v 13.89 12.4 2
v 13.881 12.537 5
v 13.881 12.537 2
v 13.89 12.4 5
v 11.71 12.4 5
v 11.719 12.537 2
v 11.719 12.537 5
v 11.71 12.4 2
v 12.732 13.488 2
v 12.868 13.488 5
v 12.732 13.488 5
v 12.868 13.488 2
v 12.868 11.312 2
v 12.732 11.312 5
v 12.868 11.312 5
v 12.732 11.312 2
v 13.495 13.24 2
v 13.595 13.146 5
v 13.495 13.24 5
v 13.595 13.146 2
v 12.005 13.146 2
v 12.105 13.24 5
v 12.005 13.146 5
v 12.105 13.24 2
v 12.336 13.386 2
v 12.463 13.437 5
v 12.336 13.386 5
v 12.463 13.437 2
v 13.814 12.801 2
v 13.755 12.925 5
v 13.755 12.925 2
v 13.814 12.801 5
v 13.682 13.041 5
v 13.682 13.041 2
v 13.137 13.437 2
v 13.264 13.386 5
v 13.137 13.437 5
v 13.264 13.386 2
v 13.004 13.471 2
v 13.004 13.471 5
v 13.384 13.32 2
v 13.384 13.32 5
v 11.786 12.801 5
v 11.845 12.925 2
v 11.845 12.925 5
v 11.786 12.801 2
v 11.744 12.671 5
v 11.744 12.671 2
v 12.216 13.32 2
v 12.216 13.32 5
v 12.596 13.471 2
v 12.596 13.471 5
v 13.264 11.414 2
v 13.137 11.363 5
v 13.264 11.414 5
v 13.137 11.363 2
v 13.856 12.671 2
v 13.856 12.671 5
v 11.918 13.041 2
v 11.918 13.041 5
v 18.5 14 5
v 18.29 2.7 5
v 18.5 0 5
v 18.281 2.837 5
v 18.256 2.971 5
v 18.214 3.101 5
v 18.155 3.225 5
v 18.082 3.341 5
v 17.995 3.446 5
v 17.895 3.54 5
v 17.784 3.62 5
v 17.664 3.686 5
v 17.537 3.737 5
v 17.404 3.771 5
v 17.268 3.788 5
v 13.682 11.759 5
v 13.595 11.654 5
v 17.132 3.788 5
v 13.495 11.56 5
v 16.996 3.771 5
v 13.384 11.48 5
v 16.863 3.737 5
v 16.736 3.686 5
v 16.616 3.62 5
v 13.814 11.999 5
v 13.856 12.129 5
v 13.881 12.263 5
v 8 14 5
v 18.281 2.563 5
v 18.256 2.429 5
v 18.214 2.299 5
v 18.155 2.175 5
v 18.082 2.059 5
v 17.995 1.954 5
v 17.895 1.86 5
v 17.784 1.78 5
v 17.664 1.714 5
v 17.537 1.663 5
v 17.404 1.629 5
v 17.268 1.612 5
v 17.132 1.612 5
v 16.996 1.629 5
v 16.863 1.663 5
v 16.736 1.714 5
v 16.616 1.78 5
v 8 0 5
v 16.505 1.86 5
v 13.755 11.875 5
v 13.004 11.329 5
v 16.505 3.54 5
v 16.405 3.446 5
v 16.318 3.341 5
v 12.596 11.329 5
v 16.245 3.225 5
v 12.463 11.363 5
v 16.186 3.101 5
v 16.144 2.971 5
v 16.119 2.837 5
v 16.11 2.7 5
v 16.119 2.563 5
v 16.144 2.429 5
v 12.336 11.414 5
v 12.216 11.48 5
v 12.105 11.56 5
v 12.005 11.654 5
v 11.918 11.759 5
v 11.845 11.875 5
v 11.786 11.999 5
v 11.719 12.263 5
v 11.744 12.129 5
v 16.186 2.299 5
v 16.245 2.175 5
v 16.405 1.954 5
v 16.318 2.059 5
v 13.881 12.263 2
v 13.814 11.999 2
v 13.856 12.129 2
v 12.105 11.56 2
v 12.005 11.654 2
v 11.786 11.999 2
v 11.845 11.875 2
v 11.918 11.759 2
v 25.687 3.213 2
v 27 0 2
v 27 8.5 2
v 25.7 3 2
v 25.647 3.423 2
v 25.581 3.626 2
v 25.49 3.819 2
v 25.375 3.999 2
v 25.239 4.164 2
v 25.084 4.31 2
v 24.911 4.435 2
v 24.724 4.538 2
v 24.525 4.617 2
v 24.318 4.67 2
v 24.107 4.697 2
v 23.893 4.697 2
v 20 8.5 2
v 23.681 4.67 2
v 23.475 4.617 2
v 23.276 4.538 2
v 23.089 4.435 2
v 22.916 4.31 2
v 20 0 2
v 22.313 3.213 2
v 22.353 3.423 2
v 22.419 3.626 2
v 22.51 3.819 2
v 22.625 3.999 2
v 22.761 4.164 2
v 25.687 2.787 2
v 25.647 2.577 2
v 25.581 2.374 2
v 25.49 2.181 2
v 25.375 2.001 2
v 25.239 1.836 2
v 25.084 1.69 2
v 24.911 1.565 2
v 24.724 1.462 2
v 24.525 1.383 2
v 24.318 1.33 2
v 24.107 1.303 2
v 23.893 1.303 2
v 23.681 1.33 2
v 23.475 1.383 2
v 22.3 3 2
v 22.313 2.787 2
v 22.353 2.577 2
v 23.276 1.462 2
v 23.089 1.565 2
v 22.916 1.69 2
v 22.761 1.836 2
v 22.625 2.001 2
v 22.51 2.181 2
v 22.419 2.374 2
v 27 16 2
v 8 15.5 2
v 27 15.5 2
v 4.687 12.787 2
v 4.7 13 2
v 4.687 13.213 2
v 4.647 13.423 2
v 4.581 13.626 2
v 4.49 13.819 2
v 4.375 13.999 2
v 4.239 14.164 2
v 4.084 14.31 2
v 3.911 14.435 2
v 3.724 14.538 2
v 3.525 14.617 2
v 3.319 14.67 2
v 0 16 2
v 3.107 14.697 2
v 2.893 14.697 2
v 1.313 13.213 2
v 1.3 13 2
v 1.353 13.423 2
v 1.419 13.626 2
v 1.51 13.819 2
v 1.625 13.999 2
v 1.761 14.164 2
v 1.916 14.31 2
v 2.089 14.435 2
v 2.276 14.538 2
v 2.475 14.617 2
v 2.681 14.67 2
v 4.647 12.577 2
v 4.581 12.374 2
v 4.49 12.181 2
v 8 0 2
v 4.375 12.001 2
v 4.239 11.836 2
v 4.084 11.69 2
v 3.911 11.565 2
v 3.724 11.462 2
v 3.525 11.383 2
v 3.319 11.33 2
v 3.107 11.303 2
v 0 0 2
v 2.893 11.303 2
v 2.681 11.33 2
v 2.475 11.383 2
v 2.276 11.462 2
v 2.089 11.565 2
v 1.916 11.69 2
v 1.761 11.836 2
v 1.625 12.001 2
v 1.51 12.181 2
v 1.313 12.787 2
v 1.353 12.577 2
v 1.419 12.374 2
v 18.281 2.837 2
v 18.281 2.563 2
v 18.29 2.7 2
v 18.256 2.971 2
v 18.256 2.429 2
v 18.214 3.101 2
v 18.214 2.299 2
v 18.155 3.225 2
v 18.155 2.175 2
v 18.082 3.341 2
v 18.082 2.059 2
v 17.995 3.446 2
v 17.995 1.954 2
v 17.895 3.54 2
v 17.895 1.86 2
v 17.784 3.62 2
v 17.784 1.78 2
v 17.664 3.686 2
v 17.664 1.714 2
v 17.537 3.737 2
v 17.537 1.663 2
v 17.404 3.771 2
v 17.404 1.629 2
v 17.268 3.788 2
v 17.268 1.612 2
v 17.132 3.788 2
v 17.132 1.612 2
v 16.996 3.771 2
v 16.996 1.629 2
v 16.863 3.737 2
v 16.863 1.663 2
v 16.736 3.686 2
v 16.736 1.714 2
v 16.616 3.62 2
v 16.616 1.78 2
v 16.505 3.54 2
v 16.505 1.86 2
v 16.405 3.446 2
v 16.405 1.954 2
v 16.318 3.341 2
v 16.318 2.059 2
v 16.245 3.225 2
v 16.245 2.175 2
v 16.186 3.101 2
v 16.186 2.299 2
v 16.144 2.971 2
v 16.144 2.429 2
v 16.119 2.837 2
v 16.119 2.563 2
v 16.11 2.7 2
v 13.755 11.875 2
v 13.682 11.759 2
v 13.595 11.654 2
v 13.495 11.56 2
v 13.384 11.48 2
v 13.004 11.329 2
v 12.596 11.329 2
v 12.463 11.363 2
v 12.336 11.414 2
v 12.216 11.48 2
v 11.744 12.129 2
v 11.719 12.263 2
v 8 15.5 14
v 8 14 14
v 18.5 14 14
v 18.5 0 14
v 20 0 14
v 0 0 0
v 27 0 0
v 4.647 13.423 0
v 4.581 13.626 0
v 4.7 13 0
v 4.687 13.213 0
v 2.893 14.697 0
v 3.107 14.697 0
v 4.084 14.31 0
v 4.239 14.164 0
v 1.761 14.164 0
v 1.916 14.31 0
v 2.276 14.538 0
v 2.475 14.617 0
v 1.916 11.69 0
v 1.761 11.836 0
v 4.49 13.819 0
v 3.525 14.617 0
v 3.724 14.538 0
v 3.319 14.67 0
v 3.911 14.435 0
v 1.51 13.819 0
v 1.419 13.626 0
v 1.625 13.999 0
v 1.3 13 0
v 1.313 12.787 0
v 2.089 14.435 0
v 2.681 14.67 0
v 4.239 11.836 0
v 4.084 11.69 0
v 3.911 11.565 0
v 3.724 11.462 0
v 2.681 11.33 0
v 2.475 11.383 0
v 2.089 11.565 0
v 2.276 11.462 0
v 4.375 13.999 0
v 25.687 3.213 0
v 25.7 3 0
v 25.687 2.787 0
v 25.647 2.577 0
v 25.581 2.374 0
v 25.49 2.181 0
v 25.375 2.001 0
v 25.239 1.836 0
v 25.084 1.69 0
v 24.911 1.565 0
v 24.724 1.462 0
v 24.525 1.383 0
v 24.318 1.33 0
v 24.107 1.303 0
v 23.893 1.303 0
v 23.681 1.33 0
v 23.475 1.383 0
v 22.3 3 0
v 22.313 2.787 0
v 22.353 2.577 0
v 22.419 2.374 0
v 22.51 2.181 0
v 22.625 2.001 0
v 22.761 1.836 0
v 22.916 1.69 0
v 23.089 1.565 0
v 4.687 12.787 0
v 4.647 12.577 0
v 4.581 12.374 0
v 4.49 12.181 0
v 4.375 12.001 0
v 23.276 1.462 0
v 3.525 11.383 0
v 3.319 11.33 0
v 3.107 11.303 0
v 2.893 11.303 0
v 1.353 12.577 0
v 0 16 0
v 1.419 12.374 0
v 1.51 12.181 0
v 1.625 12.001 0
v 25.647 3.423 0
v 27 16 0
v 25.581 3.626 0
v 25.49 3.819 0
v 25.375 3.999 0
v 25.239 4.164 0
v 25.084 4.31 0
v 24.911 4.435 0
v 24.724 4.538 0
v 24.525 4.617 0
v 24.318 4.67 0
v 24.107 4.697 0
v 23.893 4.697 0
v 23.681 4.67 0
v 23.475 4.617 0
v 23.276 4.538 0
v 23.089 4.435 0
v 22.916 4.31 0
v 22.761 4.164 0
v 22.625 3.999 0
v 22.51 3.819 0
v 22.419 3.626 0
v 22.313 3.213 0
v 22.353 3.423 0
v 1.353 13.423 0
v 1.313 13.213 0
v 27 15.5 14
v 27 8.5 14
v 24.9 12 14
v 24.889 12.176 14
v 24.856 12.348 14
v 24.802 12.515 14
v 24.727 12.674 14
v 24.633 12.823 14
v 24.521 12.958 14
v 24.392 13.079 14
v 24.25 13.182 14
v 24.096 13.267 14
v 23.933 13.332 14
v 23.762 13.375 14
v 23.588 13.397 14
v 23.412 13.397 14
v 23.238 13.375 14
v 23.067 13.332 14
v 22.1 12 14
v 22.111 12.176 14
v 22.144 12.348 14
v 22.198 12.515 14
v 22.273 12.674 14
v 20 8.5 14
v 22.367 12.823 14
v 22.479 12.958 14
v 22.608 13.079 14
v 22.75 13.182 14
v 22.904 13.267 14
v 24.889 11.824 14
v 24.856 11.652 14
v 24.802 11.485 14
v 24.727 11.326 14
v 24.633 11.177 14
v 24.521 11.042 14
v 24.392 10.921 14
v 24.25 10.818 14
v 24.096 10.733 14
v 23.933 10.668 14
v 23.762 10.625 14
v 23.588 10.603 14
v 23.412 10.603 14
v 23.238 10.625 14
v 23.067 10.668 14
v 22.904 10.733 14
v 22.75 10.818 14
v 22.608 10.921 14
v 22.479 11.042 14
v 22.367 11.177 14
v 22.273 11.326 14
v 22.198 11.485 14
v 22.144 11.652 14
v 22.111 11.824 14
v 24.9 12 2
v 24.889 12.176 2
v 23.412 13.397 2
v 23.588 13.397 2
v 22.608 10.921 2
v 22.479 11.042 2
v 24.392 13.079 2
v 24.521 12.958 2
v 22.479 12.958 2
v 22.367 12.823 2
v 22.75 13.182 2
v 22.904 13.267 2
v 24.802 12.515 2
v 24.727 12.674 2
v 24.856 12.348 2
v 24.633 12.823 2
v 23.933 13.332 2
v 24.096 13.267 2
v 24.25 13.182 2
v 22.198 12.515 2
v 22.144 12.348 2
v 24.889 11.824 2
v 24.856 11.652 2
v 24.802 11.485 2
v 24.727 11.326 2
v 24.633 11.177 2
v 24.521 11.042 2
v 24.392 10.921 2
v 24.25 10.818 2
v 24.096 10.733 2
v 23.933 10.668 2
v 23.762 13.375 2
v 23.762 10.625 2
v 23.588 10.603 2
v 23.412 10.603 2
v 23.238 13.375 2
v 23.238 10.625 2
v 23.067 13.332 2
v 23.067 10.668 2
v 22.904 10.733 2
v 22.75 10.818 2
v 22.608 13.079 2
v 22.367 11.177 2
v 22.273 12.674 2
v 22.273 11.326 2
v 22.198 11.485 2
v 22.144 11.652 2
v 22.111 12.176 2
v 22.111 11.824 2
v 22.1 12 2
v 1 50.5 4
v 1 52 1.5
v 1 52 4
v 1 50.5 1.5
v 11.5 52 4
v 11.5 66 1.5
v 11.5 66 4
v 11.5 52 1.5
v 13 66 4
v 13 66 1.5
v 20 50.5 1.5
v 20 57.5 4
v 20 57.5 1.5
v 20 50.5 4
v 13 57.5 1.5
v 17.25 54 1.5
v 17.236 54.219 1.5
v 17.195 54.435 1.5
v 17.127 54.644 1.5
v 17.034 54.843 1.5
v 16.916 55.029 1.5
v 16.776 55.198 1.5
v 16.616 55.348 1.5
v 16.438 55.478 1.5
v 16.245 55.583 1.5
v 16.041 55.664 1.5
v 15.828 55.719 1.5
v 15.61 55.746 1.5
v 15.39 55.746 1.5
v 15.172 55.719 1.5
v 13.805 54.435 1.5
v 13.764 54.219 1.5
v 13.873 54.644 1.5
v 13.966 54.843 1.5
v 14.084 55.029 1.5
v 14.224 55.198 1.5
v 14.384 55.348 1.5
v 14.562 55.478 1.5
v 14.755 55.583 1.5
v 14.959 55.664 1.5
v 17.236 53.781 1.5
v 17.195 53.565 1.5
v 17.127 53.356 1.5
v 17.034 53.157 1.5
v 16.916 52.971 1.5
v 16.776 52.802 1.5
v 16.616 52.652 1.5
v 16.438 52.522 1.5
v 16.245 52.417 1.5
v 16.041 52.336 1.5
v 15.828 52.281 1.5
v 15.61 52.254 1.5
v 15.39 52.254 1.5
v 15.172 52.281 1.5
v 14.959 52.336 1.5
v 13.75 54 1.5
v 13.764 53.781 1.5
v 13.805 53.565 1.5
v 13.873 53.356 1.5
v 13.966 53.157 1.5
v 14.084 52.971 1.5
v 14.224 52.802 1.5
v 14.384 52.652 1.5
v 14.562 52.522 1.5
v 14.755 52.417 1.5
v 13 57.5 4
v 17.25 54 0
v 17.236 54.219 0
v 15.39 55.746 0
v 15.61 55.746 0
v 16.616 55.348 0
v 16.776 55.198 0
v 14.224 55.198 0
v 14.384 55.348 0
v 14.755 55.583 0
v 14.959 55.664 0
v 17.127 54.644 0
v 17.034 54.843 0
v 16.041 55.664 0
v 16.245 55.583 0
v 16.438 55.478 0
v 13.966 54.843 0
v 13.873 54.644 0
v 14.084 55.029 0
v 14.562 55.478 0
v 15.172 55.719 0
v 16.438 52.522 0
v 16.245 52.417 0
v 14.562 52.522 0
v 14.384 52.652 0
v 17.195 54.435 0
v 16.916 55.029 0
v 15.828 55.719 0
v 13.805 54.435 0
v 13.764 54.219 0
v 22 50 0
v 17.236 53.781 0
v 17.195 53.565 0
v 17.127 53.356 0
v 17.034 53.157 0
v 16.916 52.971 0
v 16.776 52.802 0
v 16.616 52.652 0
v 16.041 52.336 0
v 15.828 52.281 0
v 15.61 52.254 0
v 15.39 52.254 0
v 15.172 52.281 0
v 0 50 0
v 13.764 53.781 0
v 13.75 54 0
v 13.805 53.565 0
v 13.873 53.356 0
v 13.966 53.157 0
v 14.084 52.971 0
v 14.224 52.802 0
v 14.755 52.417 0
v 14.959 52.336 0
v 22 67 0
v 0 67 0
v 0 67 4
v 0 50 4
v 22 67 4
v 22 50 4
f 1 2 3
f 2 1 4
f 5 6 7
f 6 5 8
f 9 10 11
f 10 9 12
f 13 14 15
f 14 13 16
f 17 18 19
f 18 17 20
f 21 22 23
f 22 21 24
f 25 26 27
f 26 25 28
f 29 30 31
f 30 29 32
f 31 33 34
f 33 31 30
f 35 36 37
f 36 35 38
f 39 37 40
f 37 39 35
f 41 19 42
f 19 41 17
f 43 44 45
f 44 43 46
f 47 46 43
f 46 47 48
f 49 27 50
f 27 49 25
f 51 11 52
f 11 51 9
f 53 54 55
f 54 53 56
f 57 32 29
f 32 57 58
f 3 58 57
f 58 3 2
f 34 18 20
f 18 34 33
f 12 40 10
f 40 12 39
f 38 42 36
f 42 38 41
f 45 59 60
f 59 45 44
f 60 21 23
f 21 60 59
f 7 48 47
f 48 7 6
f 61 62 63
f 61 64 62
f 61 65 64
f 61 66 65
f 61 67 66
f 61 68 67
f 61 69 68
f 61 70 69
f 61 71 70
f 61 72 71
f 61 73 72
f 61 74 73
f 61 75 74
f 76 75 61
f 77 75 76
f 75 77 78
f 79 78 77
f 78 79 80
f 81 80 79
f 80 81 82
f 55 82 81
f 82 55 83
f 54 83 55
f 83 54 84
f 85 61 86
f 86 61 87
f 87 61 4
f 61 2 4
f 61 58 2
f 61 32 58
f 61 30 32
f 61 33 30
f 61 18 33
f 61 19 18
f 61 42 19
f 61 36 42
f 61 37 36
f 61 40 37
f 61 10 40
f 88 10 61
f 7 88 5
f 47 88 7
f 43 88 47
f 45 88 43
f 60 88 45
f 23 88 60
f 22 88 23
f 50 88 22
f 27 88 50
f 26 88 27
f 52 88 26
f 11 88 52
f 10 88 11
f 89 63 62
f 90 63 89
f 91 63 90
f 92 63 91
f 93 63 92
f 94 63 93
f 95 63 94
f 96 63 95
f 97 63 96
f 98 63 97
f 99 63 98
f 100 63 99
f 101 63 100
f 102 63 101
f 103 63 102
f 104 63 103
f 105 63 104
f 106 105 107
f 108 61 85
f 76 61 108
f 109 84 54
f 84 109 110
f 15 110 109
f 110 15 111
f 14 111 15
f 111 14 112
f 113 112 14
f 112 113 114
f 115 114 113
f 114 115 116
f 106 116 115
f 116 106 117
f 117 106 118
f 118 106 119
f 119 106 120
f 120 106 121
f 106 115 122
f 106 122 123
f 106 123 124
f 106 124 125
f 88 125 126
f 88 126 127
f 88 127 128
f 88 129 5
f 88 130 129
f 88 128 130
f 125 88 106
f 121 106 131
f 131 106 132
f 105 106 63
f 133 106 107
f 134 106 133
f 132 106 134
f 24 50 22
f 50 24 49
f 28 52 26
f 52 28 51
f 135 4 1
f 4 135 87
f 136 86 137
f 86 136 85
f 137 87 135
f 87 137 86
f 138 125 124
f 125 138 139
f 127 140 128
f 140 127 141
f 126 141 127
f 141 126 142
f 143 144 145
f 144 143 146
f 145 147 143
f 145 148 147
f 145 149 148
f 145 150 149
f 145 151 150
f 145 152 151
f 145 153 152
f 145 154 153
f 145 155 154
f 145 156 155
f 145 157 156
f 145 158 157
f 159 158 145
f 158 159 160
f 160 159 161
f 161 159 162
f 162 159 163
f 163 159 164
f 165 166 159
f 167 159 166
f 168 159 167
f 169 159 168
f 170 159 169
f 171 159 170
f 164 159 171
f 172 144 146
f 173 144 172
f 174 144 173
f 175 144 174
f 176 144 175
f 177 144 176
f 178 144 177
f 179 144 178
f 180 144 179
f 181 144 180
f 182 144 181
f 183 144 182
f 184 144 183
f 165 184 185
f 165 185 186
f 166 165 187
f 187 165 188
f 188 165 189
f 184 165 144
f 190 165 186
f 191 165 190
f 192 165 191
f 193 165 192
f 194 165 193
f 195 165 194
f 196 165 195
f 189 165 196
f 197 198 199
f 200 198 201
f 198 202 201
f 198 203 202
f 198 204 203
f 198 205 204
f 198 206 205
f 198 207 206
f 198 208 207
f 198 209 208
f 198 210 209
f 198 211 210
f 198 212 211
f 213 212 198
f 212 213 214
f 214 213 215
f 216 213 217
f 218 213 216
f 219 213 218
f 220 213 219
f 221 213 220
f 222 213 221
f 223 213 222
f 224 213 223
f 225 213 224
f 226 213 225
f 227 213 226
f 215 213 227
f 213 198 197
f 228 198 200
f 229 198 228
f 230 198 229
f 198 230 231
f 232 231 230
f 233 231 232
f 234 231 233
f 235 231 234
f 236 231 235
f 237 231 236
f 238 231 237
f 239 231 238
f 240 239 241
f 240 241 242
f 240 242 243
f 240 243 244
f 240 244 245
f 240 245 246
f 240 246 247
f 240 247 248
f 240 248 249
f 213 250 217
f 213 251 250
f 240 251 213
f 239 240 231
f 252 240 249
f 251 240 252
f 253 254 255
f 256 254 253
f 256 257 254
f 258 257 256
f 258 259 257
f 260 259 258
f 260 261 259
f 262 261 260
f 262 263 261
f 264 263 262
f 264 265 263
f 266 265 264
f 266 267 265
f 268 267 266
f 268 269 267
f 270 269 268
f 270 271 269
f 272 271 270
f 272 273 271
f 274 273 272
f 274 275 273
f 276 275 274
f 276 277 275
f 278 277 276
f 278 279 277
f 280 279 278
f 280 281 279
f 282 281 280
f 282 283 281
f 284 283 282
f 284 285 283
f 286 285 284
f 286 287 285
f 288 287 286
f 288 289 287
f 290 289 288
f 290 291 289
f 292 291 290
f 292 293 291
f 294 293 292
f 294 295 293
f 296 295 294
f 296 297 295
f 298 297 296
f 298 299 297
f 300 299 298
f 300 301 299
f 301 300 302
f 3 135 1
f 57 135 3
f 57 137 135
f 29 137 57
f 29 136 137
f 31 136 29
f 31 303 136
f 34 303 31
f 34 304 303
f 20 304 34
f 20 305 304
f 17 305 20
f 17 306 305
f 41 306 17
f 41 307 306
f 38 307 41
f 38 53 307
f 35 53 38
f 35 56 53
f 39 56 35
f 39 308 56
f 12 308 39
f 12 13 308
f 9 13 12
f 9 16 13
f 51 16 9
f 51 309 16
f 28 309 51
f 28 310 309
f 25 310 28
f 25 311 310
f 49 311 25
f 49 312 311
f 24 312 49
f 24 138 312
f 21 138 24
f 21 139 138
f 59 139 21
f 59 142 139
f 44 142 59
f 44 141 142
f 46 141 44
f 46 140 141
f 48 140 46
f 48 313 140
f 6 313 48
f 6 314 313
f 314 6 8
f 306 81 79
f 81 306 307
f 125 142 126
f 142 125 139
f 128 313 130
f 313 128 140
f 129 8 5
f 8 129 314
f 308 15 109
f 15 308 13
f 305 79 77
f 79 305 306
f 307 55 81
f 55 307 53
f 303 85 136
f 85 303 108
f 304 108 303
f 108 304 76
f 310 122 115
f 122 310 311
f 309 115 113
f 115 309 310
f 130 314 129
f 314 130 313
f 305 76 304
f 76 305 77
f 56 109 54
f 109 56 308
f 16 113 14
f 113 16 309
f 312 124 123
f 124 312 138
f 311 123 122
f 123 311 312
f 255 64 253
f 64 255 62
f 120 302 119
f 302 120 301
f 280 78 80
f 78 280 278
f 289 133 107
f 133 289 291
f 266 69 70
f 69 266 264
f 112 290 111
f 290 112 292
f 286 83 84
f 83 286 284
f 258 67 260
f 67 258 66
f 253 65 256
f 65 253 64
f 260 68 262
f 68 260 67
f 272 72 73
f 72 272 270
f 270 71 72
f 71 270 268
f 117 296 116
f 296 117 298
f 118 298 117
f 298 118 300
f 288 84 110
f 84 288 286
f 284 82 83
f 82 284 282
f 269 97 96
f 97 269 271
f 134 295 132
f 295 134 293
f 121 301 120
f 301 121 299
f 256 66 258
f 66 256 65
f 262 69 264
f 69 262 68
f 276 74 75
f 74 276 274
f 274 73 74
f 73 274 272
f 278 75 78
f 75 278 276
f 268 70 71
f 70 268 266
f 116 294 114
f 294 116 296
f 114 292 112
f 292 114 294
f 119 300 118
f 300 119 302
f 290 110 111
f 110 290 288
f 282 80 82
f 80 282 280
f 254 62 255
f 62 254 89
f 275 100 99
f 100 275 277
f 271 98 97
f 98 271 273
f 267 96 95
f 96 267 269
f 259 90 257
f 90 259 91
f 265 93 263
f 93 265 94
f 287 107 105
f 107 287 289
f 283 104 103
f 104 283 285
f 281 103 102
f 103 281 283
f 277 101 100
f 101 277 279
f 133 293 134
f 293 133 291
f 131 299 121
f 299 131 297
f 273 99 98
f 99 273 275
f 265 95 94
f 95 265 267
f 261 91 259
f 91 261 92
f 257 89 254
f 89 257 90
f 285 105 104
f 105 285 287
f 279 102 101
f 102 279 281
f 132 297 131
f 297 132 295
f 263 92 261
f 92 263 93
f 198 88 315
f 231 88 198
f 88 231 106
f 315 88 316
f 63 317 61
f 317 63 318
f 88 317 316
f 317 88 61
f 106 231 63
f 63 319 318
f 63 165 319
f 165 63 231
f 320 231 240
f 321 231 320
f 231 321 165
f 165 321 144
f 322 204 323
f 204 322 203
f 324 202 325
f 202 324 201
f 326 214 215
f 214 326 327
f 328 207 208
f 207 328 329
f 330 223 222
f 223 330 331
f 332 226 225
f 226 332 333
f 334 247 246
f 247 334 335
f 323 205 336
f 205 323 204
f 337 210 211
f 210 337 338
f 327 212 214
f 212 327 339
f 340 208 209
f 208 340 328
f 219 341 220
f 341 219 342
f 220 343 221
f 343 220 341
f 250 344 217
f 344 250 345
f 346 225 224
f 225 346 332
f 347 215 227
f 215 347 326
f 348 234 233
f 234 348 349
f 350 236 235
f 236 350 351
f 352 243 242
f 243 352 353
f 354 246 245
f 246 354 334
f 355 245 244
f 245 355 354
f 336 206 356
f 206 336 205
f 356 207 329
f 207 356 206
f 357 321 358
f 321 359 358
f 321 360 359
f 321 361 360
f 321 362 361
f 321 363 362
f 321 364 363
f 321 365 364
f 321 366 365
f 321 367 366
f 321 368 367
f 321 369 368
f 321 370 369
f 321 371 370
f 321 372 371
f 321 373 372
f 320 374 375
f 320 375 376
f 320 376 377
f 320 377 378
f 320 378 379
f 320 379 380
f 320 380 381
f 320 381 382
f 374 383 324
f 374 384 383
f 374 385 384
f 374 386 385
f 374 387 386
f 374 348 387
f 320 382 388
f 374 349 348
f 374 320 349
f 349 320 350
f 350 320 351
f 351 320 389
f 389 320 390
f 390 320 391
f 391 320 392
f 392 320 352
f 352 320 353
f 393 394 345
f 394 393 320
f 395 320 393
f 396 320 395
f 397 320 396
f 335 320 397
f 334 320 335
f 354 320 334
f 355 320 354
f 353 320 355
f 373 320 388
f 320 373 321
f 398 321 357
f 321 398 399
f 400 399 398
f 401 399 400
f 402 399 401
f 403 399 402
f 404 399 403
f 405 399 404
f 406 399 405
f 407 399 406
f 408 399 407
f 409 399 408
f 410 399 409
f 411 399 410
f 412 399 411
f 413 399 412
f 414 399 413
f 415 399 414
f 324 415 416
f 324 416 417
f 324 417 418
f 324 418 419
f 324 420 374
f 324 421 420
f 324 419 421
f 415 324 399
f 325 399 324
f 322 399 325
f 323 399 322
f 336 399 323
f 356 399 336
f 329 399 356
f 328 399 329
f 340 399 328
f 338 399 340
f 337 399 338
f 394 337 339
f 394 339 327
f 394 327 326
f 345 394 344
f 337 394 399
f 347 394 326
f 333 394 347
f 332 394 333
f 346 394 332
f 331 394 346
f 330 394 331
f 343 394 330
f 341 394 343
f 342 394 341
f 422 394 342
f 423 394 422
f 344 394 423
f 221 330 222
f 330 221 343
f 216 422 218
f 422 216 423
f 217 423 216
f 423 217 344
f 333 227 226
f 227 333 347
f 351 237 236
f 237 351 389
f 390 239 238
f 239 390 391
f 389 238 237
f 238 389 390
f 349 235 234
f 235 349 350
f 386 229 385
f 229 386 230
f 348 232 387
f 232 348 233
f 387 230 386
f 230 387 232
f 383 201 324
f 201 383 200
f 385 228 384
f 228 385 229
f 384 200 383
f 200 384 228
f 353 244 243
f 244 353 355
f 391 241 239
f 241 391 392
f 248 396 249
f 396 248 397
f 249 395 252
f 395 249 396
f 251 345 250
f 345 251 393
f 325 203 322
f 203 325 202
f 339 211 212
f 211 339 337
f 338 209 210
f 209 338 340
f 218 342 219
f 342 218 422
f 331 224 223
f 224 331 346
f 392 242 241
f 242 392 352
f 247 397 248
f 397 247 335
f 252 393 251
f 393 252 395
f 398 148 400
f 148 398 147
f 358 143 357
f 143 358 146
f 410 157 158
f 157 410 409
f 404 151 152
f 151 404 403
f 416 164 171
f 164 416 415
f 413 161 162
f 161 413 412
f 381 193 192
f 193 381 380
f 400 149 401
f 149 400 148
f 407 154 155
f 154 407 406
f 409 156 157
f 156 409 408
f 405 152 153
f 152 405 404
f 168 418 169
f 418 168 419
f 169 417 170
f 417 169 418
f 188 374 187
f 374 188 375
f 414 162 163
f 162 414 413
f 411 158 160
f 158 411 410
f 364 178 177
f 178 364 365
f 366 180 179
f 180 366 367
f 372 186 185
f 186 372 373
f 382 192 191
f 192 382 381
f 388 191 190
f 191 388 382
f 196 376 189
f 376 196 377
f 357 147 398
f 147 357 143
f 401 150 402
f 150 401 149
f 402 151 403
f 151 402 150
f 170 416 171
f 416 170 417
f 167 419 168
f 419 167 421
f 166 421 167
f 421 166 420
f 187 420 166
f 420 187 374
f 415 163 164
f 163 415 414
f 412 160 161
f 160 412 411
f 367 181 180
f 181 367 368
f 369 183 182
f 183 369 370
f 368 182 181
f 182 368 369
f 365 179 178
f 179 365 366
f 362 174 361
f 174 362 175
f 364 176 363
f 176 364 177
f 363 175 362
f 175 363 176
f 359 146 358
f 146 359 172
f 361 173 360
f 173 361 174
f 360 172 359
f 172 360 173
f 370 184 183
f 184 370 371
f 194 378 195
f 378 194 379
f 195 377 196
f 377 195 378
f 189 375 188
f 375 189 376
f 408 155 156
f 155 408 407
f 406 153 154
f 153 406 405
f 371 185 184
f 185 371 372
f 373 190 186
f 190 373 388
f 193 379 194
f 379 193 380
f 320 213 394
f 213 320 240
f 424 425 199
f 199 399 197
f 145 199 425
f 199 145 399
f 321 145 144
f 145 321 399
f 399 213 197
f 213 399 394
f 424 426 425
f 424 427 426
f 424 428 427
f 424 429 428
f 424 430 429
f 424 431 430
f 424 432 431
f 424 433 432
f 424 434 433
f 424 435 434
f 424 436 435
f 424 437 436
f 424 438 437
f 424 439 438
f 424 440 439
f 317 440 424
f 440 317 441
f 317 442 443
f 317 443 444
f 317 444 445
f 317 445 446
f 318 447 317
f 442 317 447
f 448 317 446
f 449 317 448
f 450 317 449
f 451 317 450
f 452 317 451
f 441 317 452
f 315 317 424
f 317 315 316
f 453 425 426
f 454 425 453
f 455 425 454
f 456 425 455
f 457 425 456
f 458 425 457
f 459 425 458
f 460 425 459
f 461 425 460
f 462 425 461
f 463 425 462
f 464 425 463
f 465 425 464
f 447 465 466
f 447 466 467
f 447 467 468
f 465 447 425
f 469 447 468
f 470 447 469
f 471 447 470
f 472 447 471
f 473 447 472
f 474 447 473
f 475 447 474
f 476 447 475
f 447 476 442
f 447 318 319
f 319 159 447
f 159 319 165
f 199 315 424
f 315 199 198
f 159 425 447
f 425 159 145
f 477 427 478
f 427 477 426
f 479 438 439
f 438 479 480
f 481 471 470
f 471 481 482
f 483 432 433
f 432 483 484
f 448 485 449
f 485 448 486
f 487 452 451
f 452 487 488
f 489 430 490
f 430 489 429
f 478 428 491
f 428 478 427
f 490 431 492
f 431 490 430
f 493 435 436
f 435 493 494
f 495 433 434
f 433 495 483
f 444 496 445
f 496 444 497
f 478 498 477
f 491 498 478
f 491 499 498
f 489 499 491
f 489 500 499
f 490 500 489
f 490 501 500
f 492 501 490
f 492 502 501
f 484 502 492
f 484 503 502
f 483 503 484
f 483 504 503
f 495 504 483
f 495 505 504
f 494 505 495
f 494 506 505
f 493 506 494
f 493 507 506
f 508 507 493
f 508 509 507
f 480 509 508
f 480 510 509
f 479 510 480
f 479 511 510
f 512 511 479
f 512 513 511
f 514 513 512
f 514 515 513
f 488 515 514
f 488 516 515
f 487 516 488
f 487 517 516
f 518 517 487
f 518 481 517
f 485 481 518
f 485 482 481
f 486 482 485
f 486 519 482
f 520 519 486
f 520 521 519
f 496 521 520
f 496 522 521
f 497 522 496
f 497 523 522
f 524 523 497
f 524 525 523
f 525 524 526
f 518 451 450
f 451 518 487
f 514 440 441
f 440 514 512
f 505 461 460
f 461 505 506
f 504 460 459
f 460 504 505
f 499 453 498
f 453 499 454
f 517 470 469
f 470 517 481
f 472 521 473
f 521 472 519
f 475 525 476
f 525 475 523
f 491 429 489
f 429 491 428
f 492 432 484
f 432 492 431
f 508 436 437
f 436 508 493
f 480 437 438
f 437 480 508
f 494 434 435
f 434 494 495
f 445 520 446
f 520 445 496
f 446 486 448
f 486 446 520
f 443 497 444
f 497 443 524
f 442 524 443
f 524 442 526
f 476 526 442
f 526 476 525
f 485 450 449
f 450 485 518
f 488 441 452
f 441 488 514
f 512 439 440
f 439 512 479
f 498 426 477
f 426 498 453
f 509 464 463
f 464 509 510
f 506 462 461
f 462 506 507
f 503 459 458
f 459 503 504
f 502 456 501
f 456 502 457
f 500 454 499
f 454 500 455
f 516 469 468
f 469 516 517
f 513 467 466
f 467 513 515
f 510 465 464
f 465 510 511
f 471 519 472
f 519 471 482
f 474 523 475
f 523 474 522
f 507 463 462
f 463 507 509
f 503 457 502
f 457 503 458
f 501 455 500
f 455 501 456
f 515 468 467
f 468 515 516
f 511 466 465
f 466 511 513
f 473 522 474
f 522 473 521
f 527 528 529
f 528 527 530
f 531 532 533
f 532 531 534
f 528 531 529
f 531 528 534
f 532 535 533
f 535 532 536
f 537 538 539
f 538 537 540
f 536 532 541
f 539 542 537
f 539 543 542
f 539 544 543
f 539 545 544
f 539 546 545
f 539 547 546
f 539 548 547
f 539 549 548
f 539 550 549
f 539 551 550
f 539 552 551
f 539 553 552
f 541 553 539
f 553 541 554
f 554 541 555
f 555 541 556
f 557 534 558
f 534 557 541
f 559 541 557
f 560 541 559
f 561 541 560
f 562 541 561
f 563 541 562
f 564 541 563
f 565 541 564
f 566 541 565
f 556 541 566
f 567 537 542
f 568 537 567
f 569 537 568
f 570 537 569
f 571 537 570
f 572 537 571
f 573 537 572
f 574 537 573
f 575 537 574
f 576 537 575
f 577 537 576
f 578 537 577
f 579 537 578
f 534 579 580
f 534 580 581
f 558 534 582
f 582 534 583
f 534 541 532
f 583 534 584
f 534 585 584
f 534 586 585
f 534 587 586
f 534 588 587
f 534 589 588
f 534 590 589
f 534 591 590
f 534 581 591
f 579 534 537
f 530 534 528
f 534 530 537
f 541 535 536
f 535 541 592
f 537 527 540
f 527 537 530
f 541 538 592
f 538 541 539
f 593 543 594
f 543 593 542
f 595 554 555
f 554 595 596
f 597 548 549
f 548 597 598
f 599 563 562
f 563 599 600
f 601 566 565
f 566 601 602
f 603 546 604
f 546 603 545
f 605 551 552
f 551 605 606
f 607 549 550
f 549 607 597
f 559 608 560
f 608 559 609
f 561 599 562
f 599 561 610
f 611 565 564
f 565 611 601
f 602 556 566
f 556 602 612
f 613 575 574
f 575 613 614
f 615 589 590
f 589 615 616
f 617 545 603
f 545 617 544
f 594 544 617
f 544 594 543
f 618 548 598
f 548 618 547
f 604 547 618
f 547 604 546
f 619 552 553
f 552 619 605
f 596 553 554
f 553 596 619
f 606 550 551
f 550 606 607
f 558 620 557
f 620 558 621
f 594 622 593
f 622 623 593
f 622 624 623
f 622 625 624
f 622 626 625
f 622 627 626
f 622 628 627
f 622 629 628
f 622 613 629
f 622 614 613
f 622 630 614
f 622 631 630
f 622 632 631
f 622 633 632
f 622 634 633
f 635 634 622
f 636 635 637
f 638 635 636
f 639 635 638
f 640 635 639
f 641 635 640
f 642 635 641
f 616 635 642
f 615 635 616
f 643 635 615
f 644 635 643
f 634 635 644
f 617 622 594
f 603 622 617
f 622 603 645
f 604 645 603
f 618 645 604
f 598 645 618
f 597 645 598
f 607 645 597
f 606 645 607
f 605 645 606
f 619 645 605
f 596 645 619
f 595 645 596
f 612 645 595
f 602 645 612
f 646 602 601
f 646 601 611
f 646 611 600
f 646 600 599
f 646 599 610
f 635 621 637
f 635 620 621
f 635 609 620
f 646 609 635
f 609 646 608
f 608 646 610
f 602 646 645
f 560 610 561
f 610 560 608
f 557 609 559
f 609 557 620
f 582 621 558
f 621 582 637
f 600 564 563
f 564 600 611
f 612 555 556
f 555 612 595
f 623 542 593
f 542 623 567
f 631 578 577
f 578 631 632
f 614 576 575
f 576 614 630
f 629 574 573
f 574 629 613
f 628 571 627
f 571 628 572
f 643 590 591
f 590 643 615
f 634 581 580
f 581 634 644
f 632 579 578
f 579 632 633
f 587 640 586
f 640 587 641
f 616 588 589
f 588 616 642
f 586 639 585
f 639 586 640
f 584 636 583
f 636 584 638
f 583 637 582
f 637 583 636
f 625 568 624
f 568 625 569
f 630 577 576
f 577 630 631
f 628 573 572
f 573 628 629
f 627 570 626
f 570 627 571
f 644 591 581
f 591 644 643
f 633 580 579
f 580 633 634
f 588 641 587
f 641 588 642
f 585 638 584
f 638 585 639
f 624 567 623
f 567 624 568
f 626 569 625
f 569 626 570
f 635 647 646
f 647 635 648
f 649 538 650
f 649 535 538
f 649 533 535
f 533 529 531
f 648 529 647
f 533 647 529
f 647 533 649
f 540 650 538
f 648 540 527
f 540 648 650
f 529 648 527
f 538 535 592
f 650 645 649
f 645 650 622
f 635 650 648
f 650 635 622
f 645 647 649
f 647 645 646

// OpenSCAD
// file: ../library_deh/mag_mount.scad
/* mag_mount.scad

 * ****** Stud magnets ******
16 mm 
http://www.kjmagnetics.com/proddetail.asp?prod=MM-C-16
    Dimensions:
        D=16mm (0.63")
        M=4mm (0.16") (M4 Coarse Male threaded stud)
        H=13mm (0.51")
        h=5mm (0.20")
    Material: NdFeB, Grade N38
    Plating/Coating: Ni-Cu-Ni (Nickel)
    Magnetization Direction: Axial (Poles on Flat Ends)
    Weight: 0.26 oz. (7.37 g)
    Pull Force: 12.1 lbs
    Surface Field: N/A
    Brmax: 12,600 Gauss
    BHmax: 38 MGOe
   $2.49
*/
// Measured dimensions
 mag_thick = 4.82;	    // Magnet thickness (base to shell top)
 mag_shell_dia = 16.0;	    // Magnet shell OD
 mag_shell_flat_dia = 11;   // Dia of flat of magent
 mag_stud_dia = 2.8;        // Dia of mounting magnet studs (4-40)
 mag_stud_len = 8.0;        // Height of stud from magnet back
 mag_washer_thick = 1.1;    // Thickness of washer
 mag_nut_thick = 2.4;       // Stud nut (M3) thickness
 mag_nut_hex_flat = 5.41;   // Nut across flats
 mag_nut_hex_peak = 6.20;   // Nut across peaks (also dia of nut)
 mag_washer_dia = 7.1; // 9.5;      // Diameter of washer for magnet stud
 mag_washer_dia_extra = 2;  // Washer slop

/*
http://www.kjmagnetics.com/proddetail.asp?prod=MM-C-20


    Dimensions:
        D=20mm (0.79")
        M=4mm (0.16") (M4 Coarse Male threaded stud)
        H=15mm (0.59")
        h=7mm (0.28")
    Material: NdFeB, Grade N38
    Plating/Coating: Ni-Cu-Ni (Nickel)
    Magnetization Direction: Axial (Poles on Flat Ends)
    Weight: 0.53 oz. (15.0 g)
    Pull Force: 28.7 lbs
    Surface Field: N/A
    Brmax: 12,600 Gauss
    BHmax: 38 MGOe

  $3.14
*/
 mag20_thick = 7.11;	    // Magnet thickness (base to shell top)
 mag20_shell_dia = 20.2;    // Magnet shell OD
 mag20_stud_dia = 4.53;     // Dia of mounting magnet stud at base
 mag20_stud_len = 7.75;       // Height of stud from magnet back
 mag20_washer_thick = 0.85;    // Thickness of washer
 mag20_nut_thick = 2.93;       // Nut for stud thickness
 mag20_washer_dia = 8.68;      // Diameter of washer for magnet stud
 mag20_washer_dia_extra = 2;  // Washer slop

/*
http://www.kjmagnetics.com/proddetail.asp?prod=MM-C-25

    Dimensions:
        D=25mm (0.98")
        M=5mm (0.20") (M5 Coarse Male threaded stud)
        H=17mm (0.67")
        h=8mm (0.32")
    Material: NdFeB, Grade N38
    Plating/Coating: Ni-Cu-Ni (Nickel)
    Magnetization Direction: Axial (Poles on Flat Ends)
    Weight: 0.92 oz. (26.1 g)
    Pull Force: 48.5 lbs
    Surface Field: N/A
    Brmax: 12,600 Gauss
    BHmax: 38 MGOe
  $4.20
*/
// $$$$$ INCOMPLETE $$$$$$
 mag25_thick = 4.82;	    // Magnet thickness (base to shell top)
 mag25_shell_dia = 16.0;	    // Magnet shell OD
 mag25_stud_dia = 2.8;        // Dia of mounting magnet studs (4-40)
 mag25_stud_len = 7.95;       // Height of stud from magnet back
 mag25_washer_thick = 1.1;    // Thickness of washer
 mag25_nut_thick = 2.4;       // Nut for stud thickness
 mag25_washer_dia = 9.5;      // Diameter of washer for magnet stud
 mag25_washer_dia_extra = 2;  // Washer slop

// Cylindrical magnets
mag_cyl_dia = 6.5; 
mag_cyl_ht = 5.05;
// file: ../library_deh/ridged_screw_hole.scad
/*
file: ridged_screw_hole.scad
2018 01 18
*/
/*
All results are translated so that inside edges of the ridges are aligned with the axis, so a 
square or rectangle will have the corner centered on the x,y origin.

Modules----
module corner_ridged_rectangle(xlen,ylen,zlen,rht,rwdx,rwdy)
module corner_ridged_square(slen,zlen,rht,rwds)
module corner_ridged_square_w_screw(slen,zlen,rht,rwds,scd1,scd2,sch,scofx,scofy)
module corner_ridged_rectangle_w_screw(xlen,ylen,zlen,rht,rwdx,rwdy,scd1,scd2,sch,scofx,scofy)
module ridged_rectangular_w_clip(xlen,ylen,zlen,rht,rwdy,clen)
*/

include <deh_shapes.scad>

/*  ***** corner_ridged_rectangle *****
* xlen = x axis direction length
* ylen = y axis direction length
* zlen = z axis, height to ledge
* rht  = ridge thickness
* rwdx = ridge width, x direction
* rwdy = ridge width, y direction
*/
module corner_ridged_rectangle(xlen,ylen,zlen,rht,rwdx,rwdy)
{
    cx = rwdx; cy = -rwdy;
    translate([-cx,cy,0])
    {
        difference()
        {
            union()
            {
                zht1 = (zlen+rht);
                cube([xlen,ylen,zht1],center=false);
            }
            union()
            {
                zht2 = rht+0.1;
                translate([rwdx,rwdy,zlen])
                    cube([xlen,ylen,zht2],center=false);
            }
        }
    }        
}

/*  ***** corner_ridged_square_w_screw *****
* slen = length x & y axis directions
* zlen = z axis, height to ledge
* rht  = ridge thickness
* rwds = ridge width, x & y directions
*/
module corner_ridged_square(slen,zlen,rht,rwds)
{
    corner_ridged_rectangle(slen,slen,zlen,rht,rwds,rwds);
}

/*  ***** corner_ridged_square *****
* slen = length x & y axis directions
* zlen = z axis, height to ledge
* rht  = ridge thickness
* rwds = ridge width, x & y directions
* scd1 = screw diameter at top
* scd2 = screw diameter at bottom of screw
* sch  = screw hole height
* scofx = screw hole center offset from inside ridge corner, x
* scofy = screw hole center offset from inside ridge corner, y
*/
        //corner_ridged_square_w_screw(  10,  5, 1.5,  4,  3.2,  1.2,  3,  -1.4,  -1.4  ); // test
module corner_ridged_square_w_screw(slen,zlen,rht,rwds,scd1,scd2,sch,scofx,scofy)
{
    difference()
    {
        corner_ridged_square(slen,zlen,rht,rwds);
        
        translate([0,0,zlen-sch+rht+.01])
            ridge_screw_hole_square(slen,rwds,rwds,scd1,scd2,sch,scofx,scofy);
    }
}

/*  ***** corner_ridged_rectangle_w_screw *****
* xlen = x axis direction length
* ylen = y axis direction length
* zlen = z axis, height to ledge
* rht  = ridge thickness
* rwds = ridge width, x & y directions
* scd1 = screw diameter at top
* scd2 = screw diameter at bottom of screw
* sch  = screw hole height
* scofx = screw hole center offset from inside ridge corner, x
* scofy = screw hole center offset from inside ridge corner, y
*/
//translate([20,0,0])
//                                xlen ylen zlen rht dx dy   scd1 scd2  sch  scofx scofy
//corner_ridged_rectangle_w_screw(6,  12,    5, 1.5, 5, 4,    3.2, 2.2,   4,  -1.5,  -2.0); // Test
module corner_ridged_rectangle_w_screw(xlen,ylen,zlen,rht,rwdx,rwdy,scd1,scd2,sch,scofx,scofy)
{
    difference()
    {
        corner_ridged_rectangle(xlen,ylen,zlen,rht,rwdx,rwdy);
        
        translate([0,0,zlen-sch+rht+.01])
            ridge_screw_hole_rectangle(xlen,ylen,rwdx,rwdy,scd1,scd2,sch,scofx,scofy);
    }
}
/*
* xlen = x axis direction length
* ylen = y axis direction length
* rwdx = ridge width, x directions
* rwdy = ridge width, y directions
* scd1 = screw diameter at top
* scd2 = screw diameter at bottom of screw
* sch  = screw hole height
* scofx = screw hole center offset, x
* scofy = screw hole center offset, y
*/
module ridge_screw_hole_rectangle(xlen,ylen,rwdx,rwdy,scd1,scd2,sch,scofx,scofy)
{
    hx =  scofx;
    hy =   scofy;
echo("R","rwdx",rwdx,"rwdy",rwdy);
echo("R","scofx",scofx,"scofy",scofy,"hy",hy,"hx",hx);
    translate([hx,hy,0])
        cylinder(d1=scd2,d2=scd1,h=sch,center=false,$fn=25);    
}

module ridge_screw_hole_square(slen,rwdx,rwdy,scd1,scd2,sch,scofx,scofy)
{
    ridge_screw_hole_rectangle(slen,slen,rwdx,rwdy,scd1,scd2,sch,scofx,scofy);
}

/*
pst_ldg = 6 + bfthick;	// Height of pc board ledge from bottom
pst_wid = 3;	// Width of post
pcb_thick = 2.0;	// Thickness of pcb
clip_ht = 3;
pst_w2 = 1;	// Width where pcb contacts edge
*/

/*  ***** ridged_rectangular_w_clip *****
* xlen = x axis direction length
* ylen = y axis direction length
* zlen = z axis, height to ledge
* rht  = height of ridge (pcb thickness)
* rwdy = ridge width, y direction
* clen = clip length
* Orientation: ridge runs in y-axis direction 
* Note: ledge with is (xlen - rwdy)
*/
//         ridged_rectangular_w_clip(  3,  15,   5, 1.5, 1,   3 );	// Test
module ridged_rectangular_w_clip(xlen,ylen,zlen,rht,rwdy,clen)
{
	corner_ridged_rectangle(xlen,ylen,zlen,rht,rwdy,0);

	// Clip overhang
	cofsx = clen - rwdy;	// Offsets for wedge
 	cofsy = ylen;
	cofsz = zlen+rht+clen - rwdy;
	translate([cofsx,cofsy,cofsz])
		rotate([0,180,0])
		rotate([0,0,-90])
		wedge(ylen,clen,clen);

}
// file: ../library_deh/fasteners.scad
/* ***** fasteners.scad *****
 * library of measurements of 
 *   screws, washers, etc.
 * date: 20170512
*/

// 6-32
screw_dia_s632 = 3.35;	// shaft diameter
screw_dia_ph632 = 6.62;	// pan-head diameter
screw_dia_pht632 = 2.2;	// pan-head thickness
nut_dia_632 = 8.77 ;	// peak-peak 
nut_thick_632 = 2.77;	// thickess

// 4-40
screw_dia_s440 = 2.72;	// shaft diameter
screw_dia_s440_z = 1.90; // Dia at tip
screw_dia_ph = 5.42;	// pan-head diamter
screw_dia_pht = 1.7;	// pan-head thickness
nut_dia_440 =  7.12;	// peak-peak
nut_thick_440 = 2.41;	// thickess
nut_dia_440L = 8.88;	// Lock nut diameter
nut_thick_440L = 4.6;	// Lock nut thickness

// 6-20 self-tap
screw_dia_sod620 = 3.5;	// Outer diameter of threads
screw_dia_sth620 = 2.6;	// Self tap hole
screw_dia_pht = 6.7;	// pan-head diameter

// #4
washer_od_4 = 8.0;		// Washer outer diameter
washer_id_4 = 3.2;		// Washer inner diameter
washer_thick_4 = .94;	// Washer thickness

// #6
washer_od_6 = 9.46;	// Washer outer diameter	
washer_id_6 = 4.04;	// Washer inner diameter
washer_thick = 1.04;	// Washer thickness
washer_thick_6 = 1.04;	// Washer thickness

// M3
nut_dia_M3 = 6.5; 
nut_flat_M3 = 5.43;
nut_thick_M3 = 2.29;
washer_od_M3 = 6.9;	// Washer outside diameter
washer_id_M3 = 3.22;	// Washer inside (hole) diameter
washer_thick_M3 = .57;	// Washer thickness

// M4
nut_dia_M4 = 7.86;
nut_flat_M4 = 6.75;
nut_thick_M4 = 2.96;

// #2 6 self drilling Philips Screw (MSC: 124751)
screw_dia1_ss6 = 3.5;	// Self-tapping: dia at threads
screw_dia2_ss6 = 2.8;	// Self-tapping: dia at drilling end
screw_dia_he_ss6 = 6.7;	// Self-tapping: dia of pan head
// file: ../library_deh/Plano_frame.scad
/* File: Plano_frame.scad
 * Plano enclosure PC board fame
 * Author: deh
 * Latest edit: 201700701
 */

include <mag_mount.scad>

 $fn=100;
 
 // Inside dimensions of Plano box
 plano_len          = 152.5;   // flat-flat
 plano_wid          =  76.0;   // flat-flat

base_len = plano_len;
base_wid = plano_wid;
base_ht  = 3.2;		// Thickness of base plate
base_rnd = 10;	// Base plate corner rounding radius
 
 // Stud magnet relative postions.
 // Bottom magnet is on center-line and x,y reference is 0,0
 plano_mag_top_x  = 30.5;   // Top pair x +/- from center-line (C/L)
 plano_mag_top_y  = 138.69; // Top pair y from bottom magnet hole
 plano_mag_top_ofs = 8;    // Top mags to top edge of PC board max
 // Bottom mag distance from bottom of plano wall
 plano_mag_bot_ofs = plano_len - plano_mag_top_ofs - plano_mag_top_y;
 
 
 plano_offs_mag_y   = 4;    // Offset from edge for magnet hole
 plano_offs_mag_x   = 4;    // Offset from edge for magnet hole
 plano_ctr_y    = (plano_len/2);
 plano_ctr_x    = (plano_wid/2);
  
 plano_mag_stud = mag_stud_dia;  // Dia of mounting magnet studs (4-40)
 plano_mag_stud_len = mag_stud_len; // Height of stud from magnet back
 mag_washer_dia = 9.5;      // Diameter of washer for magnet stud
 mag_washer_thick = 1.1;    // Thickness of washer
 mag_washer_dia_extra = 1;  // Washer slop
 plano_web_thick = 2;   // Plano box thickness where stud is 
 mag_wash_recess_dia = mag_washer_dia + mag_washer_dia_extra;

 // Thickness of base for washer recess
 mag_stud_z = (mag_washer_thick +mag_nut_thick + plano_web_thick);
 mag_wash_recess_z = plano_mag_stud_len - mag_stud_z;    

 // Diameter of recess
 mag_wash_recess_dia = mag_washer_dia + mag_washer_dia_extra;

 // POD board
 pod_wid = 76.0;  // Overall width
 pod_len = 89.4;  // Overall length

// Discovery board
 dis_wid = 65.4;  // Overall width
 dis_len = 95.8;  // Overall length
 
// RJ45 connector on POD board
 RJ_offset=24.8; // Side of RJ45 jack from edge
 RJ_wid=15;      // Width of RJ 45 jack
 RJ_depth=14.5;  // Bottom of POD pc board edge to bottom/back of RJ45
 RJ_length=14;  // Front-Back length

// Cutout in base for RJ45 with plug
 RJ_slop = 4;
 RJ_plug_len = 14; // RJ plug protrudes beyond jack
 RJ_cutout_width = RJ_wid + RJ_slop;
 RJ_cutout_length = RJ_length + RJ_slop + RJ_plug_len;
 RJ_cutout_ofs = pod_wid/2 - (RJ_offset + RJ_wid);
 
 // CAN sub-board module
 sub_wid      = 33.75;  // Overall width
 sub_len      = 62.9;   // Overall lengh
 sub_mtg_wid  = 26.6;   // Between mounting holes, width
 sub_mtg_len  = 57.0;   // Between mounting holes, length 

 // Switcher module
 sw_wid =   20.3;   // Overall width
 sw_len =   41.2;   // Overall length
 sw_mtg_off_out_y   = 5.56; // Offset from edge "out" mounting hole 
 sw_mtg_off_out_x   = 2.7;  // Offset from edge "out" mounting hole 
 sw_mtg_off_in_y    = 3.1;  // Offset from edge "in" mounting hole
 sw_mtg_off_in_x    = 6.0;  // Offset from edge "in" mounting hole
 
 // RJ jack (load-cell jack)
 rj_grv =  4.0;  // Groove Depth 
 rj_ht  = 14.2;  // Groove Length
 rj_wid = 14.2;  // Groove Height
 
 // Post ridge
 p_ridge = 1.5; // Height of ridge to position PC board on post
 p_offset = 2;  // Offset of ridge from edge of post
 
 // Pod post
 pod_post_ht = (RJ_depth + 1);
 pod_post_y = 9;    // Length in "y" (long/length) box direction)
 pod_post_x = 6;    // Length in "x" (short/width) box direction)
 pod_post_q = 2.0;  // Width of ridge
 pod_post_s = 2.5;    // Screw hole dia
 pod_post_sd = 5;   // Screw hole depth

 // Pod board clip
 pcwide = 4;        // Width of clip post
 pcleng = 50;       // X axis direction length
 pc_y = base_len;   // y positioning

 iso_len   = 50.2;	// Length: two RJ 45 jacks parallel
 iso_wid   = 46.3;      // Width
 iso_thick = 1.6;	// PC board thickness
 iso_slop  = 0.0;	// Allowance for board variation
 iso_lip   = 1.2;	// Ledge width for board seating
 iso_ridge_ht = 1.55;	// Ridge ht for seat
 iso_ridge_wid= 1.5;	// Ridge width for seat
 iso_post_ht = 3.6;//6.0;	// Height of lip above base

 iso_osd_y = iso_wid + iso_slop - 0.5; // Board y
 iso_osd_x = iso_len + iso_slop - 0.5; // Board x
 iso_side  = iso_lip + iso_ridge_wid;
// file: ../library_deh/deh_shapes.scad
/* **** deh_shapes.scad *****
   * Library of useful shapes
   * 20170512
*/


/*  ***** tubedeh *****
d1 = outside diameter
d2 = inside diameter
ht = height
reference is center of tube, bottom
*/
module tubedeh(d1,d2,ht)
{
   difference()
   {
     cylinder(d = d1, h = ht, center = false);
     cylinder(d = d2, h = ht + .001, center = false);
   }
}
/* ***** rounded_bar *****
 * rectangular bar with rounded end
bar with one end rounded
rounded_bar(d, l, h)
d = diameter of rounded end, and width of bar
l = length of bar from center of rounded end to end
h = thickness (height) of bar
reference is center of rounded end, bottom
*/
module rounded_bar(d, l, h)
{
    // Rounded end
    cylinder(d = d, h = h, center = false);
    // Bar
    translate([0, -d/2, 0])
       cube([l, d, h],false);
}
/* ***** eyebar *****
 * rounded bar with hole in rounded end
 * module eye_bar(d1, d2, len, ht)
d1 = outside diameter of rounded end, and width of bar
d2 = diameter of hole in end of bar
*/
module eye_bar(d1, d2, len, ht)
{
   difference()
   {   
      rounded_bar(d1,len,ht);
      cylinder(d = d2, h = ht + .001, center = false);
   }
}
/* ***** rounded_rectangle ******
rounded_rectangle(l,w,h,rad);
l = length (x direction)
w = width (y direction)
h = thickness (z direction)
rad = radius of corners
reference = center of rectangle x,y, bottom
*/
module rounded_rectangle(l,w,h,rad)
{
  translate([-(l-rad)/2,-(w-rad)/2,0])
  {
    // Four rounded edges
    translate([0,0,0])
      rounded_bar(rad*2,l-rad,h);
    translate([l-rad,0,0])
      rotate([0,0,90])
      rounded_bar(rad*2,w-rad,h);
    translate([l-rad,w-rad,0])
      rotate([0,0,180])
      rounded_bar(rad*2,l-rad,h);
    translate([0,w-rad,0])
      rotate([0,0,-90])
      rounded_bar(rad*2,w-rad,h);
    // Fill in center
    translate([0,0,0])
      cube([l-rad + .01,w-rad + .01,h],false);
  }
}

/* ***** rounded rim *****
module rounded_rim(l,w,h,rad,tk);
l = length (inside, x direction)
w = width (inside, y direction)
h = thickness (z direction)
rad = radius of corners
tk = thickness of rim wall
*/
module rounded_rim(l,w,h,rad,tk)
{
  difference()
  {
    rounded_rectangle(l+2*tk,w+2*tk,h,rad);
    rounded_rectangle(l, w, h, rad);
  }
}

/* ***** wedge *****
l = length
w = width
h = height/thickness
*/
 module wedge(l, w, h)
 {
   polyhedron(
      points=[[0,0,0], [l,0,0], [l,w,0], [0,w,0], [0,w,h], [l,w,h]],
       faces=[[0,1,2,3],[5,4,3,2],[0,4,5,1],[0,3,4],[5,2,1]] );
 }
/* ***** rounded_triangle *****
 * l1 = side 1
 * l2 = side 2
 * l3 = side 3
 * h  = height/thickness
 * rad = radius of rounded corners
 */
module rounded_triangle(l1,l2,l3,h,rad)
{
  // Compute rotation angles
  al3 = acos((l1*l1 + l2*l2 - l3*l3)/(2 * l1 * l2));
  al1 = acos((l2*l2 + l3*l3 - l1*l1)/(2 * l2 * l3));
  al2 = acos((l3*l3 + l1*l1 - l2*l2)/(2 * l3 * l1));
  // Setup bars for edges
  translate([0,0,0])
    rotate([0,0,0])
      rounded_bar(rad,l3,h);
  translate([l3,0,0])
    rotate([0,0,180-al2])
      rounded_bar(rad,l1,h);
  rotate([0,0,al1])
    translate([l2,0,0])
      rotate([0,0,180])
        rounded_bar(rad,l2,h);
  // Fill in center
    triangle(l1,l2,l3,h);
}
/* ***** triangle *****
 * l1 = side 1
 * l2 = side 2
 * l3 = side 3
 * h  = height/thickness
 */
module triangle(l1,l2,l3,h)
{
  // Compute rotation angle
  al1 = acos((l2*l2 + l3*l3 - l1*l1)/(2 * l2 * l3));
  
  linear_extrude(height = h)
  polygon(points = [[0,0],[l3,0],[l2*cos(al1),l2*sin(al1)]]);
}
/* ***** chamfered hole *****
 * Punch hole with chamfer on one end
 * d1 = main hole diameter
 * d2 = hole diameter at chamfered end
 * ht1 = height of whole hole
 * ht2 = depth of  chamfer
*/
module chamfered_hole(d1,d2,ht1,ht2)
{
   rotate_extrude(convexity = 10)
     polygon(points = [[0,0],[d1/2,0],[d1/2,ht1-ht2],[d2/2,ht1],[0,ht1]]);

}

/* ***** fillet *****
 * r = radius of fillet
 * l = length of fillet
 fillet (r,l);
*/
module fillet(r,l)
{
   difference()
   {
     union()
     {
       cube([2*r,2*r,l]);
     }
     union()
     {
       translate ([r,r,0])
           cylinder(d = 2*r + 0.1, h = l, center = false);
       translate([r,0,0])
           cube([r,2*r,l],center = false);
       translate([0,r,0])
           cube([2*r,r,l],center = false);
     }
   }
}
/* ***** circular chamfer *****
 * d = outer diameter
 * rad = chamfer radius
 * circular_chamfer(d, rad);
*/
module circular_chamfer(d, rad)
{
  ofs = (d/2 - rad);
  rotate_extrude()
  translate([ofs,0])
   difference()
   {
     union()
     {
       square(size = [rad, rad]);
     }
     union()
     {
       translate ([0,rad ])
           circle(d = 2*rad + 0.1);
     }
   }
}
module circular_inner_chamfer(d, rad)
{
  circular_chamfer(d, rad);
} 

/* ***** circular chamfer *****
 * d = inner diameter
 * rad = chamfer radius
 * circular_chamfer(d, rad);
*/
module circular_outer_chamfer(d, rad)
{
  ofs = (d/2 - rad);
  rotate_extrude()
  translate([ofs,0])
   difference()
   {
     union()
     {
       square(size = [rad, rad]);
     }
     union()
     {
       translate ([rad,rad ])
           circle(d = 2*rad + 0.1);
     }
   }
}
// main file
/* File: mod4pjack.scad
 * Jameco 2151560 4P4C jack mount
 * Author: deh
 * Latest edit: 20180516
 */

include <../library_deh/deh_shapes.scad>
include <../library_deh/Plano_frame.scad>
include <../library_deh/fasteners.scad>
include <../library_deh/ridged_screw_hole.scad>

 $fn=50;

j_wid = 14.0;
j_len = 10.5;
j_thx = 3;
j_hd = 1.88 + 0.3;	// Index hole dia
j_hx1 = 4.8;
j_hy1 = 12.4;
j_hx2 = 9.2;
j_hy2 = 2.7;

t_wid = 16;
t_len = 27;
t_thx = 2;

module jbase()
{
	difference()
    {
        union()
        {
            cube([j_len,j_wid,j_thx],center=false);
        }
        union()
        {
            translate([j_hx1,j_hy1,0])
                cylinder(d=j_hd, h =j_thx,center=false);

            translate([j_hx2,j_hy2,0])
                cylinder(d=j_hd, h =j_thx,center=false);
        }   
    }   
}		

t_hole = 3.4;
t_hole_ofx = 3;
module tab_hole(dx,dy)
{
    translate([dx,dy,0])
        cylinder(d=t_hole,h=20,center=false);
}

jb_thx = 1.5;
jb_ht = 12.0;
j_ofx = 8;

jp_len = 7;
jp_wid = 7;

module tbase()
{
	difference()
    {
        union()
        {
            // tab base that mounts to potentiometer bar
            cube([t_len,t_wid,t_thx],center=false);

            // Position 4P4C jack base on tab base
            translate([j_ofx,0,t_thx]) jbase();
            
            // Back wall of 4P4C jack
            ofx = j_ofx + j_len;
            translate([ofx,0,t_thx])
                cube([jb_thx,j_wid,jb_ht],center=false);
            
            // Top wall of 4P4C jack
            ofx1 = j_ofx;
            ofy1 = j_wid;
            translate([ofx1,ofy1,t_thx])
                cube([j_len+jb_thx,jb_thx,jb_ht],center=false);
            
            // Cap mount post
            ofx2 = ofx1 + j_len + jb_thx;
            ofy2 = ofy1 - jp_wid + jb_thx;
            translate([ofx2, ofy2, t_thx])
                cube([jp_len,jp_wid,jb_ht],center=false);
            
        }
        union()
        {
            // Holes to mount on potentiometer bar
            tab_hole(t_hole_ofx,t_wid-t_hole_ofx,0);
            tab_hole(t_len-t_hole_ofx,t_hole_ofx,0);
        }
    }

}
jc_len = jp_len + jb_thx + j_len +j_thx;
jc_wid = j_wid + jb_thx + jb_thx;
jc_ht = 4;
jc_thx = 2;

module jcap()
{
    difference()
    {
        union()
        {
            
            cube([jc_len,jc_wid,jc_ht],center=false);
        }
        union()
        {
            ofz = jb_ht + jb_thx + jc_thx;;
            translate([-jp_len,+t_wid,ofz])
            rotate([180,0,0])
                tbase();
            
            translate([15.5,4,0])
                cylinder(d=3.5,h=20,center=false);
        }
    }
}

module total()
{
    difference()
    {
        union()
        {
            tbase();
        }
        union()
        {
            ofx2 = j_ofx + j_len + jb_thx + jp_len/2;
            ofy2 = j_wid - jp_wid/2 + jb_thx;
            translate([ofx2,ofy2,jb_ht-10])
                cylinder(d=2.8,h=12,center=false);
        }
    }
}
total();

translate([0,50,0]) jcap();
